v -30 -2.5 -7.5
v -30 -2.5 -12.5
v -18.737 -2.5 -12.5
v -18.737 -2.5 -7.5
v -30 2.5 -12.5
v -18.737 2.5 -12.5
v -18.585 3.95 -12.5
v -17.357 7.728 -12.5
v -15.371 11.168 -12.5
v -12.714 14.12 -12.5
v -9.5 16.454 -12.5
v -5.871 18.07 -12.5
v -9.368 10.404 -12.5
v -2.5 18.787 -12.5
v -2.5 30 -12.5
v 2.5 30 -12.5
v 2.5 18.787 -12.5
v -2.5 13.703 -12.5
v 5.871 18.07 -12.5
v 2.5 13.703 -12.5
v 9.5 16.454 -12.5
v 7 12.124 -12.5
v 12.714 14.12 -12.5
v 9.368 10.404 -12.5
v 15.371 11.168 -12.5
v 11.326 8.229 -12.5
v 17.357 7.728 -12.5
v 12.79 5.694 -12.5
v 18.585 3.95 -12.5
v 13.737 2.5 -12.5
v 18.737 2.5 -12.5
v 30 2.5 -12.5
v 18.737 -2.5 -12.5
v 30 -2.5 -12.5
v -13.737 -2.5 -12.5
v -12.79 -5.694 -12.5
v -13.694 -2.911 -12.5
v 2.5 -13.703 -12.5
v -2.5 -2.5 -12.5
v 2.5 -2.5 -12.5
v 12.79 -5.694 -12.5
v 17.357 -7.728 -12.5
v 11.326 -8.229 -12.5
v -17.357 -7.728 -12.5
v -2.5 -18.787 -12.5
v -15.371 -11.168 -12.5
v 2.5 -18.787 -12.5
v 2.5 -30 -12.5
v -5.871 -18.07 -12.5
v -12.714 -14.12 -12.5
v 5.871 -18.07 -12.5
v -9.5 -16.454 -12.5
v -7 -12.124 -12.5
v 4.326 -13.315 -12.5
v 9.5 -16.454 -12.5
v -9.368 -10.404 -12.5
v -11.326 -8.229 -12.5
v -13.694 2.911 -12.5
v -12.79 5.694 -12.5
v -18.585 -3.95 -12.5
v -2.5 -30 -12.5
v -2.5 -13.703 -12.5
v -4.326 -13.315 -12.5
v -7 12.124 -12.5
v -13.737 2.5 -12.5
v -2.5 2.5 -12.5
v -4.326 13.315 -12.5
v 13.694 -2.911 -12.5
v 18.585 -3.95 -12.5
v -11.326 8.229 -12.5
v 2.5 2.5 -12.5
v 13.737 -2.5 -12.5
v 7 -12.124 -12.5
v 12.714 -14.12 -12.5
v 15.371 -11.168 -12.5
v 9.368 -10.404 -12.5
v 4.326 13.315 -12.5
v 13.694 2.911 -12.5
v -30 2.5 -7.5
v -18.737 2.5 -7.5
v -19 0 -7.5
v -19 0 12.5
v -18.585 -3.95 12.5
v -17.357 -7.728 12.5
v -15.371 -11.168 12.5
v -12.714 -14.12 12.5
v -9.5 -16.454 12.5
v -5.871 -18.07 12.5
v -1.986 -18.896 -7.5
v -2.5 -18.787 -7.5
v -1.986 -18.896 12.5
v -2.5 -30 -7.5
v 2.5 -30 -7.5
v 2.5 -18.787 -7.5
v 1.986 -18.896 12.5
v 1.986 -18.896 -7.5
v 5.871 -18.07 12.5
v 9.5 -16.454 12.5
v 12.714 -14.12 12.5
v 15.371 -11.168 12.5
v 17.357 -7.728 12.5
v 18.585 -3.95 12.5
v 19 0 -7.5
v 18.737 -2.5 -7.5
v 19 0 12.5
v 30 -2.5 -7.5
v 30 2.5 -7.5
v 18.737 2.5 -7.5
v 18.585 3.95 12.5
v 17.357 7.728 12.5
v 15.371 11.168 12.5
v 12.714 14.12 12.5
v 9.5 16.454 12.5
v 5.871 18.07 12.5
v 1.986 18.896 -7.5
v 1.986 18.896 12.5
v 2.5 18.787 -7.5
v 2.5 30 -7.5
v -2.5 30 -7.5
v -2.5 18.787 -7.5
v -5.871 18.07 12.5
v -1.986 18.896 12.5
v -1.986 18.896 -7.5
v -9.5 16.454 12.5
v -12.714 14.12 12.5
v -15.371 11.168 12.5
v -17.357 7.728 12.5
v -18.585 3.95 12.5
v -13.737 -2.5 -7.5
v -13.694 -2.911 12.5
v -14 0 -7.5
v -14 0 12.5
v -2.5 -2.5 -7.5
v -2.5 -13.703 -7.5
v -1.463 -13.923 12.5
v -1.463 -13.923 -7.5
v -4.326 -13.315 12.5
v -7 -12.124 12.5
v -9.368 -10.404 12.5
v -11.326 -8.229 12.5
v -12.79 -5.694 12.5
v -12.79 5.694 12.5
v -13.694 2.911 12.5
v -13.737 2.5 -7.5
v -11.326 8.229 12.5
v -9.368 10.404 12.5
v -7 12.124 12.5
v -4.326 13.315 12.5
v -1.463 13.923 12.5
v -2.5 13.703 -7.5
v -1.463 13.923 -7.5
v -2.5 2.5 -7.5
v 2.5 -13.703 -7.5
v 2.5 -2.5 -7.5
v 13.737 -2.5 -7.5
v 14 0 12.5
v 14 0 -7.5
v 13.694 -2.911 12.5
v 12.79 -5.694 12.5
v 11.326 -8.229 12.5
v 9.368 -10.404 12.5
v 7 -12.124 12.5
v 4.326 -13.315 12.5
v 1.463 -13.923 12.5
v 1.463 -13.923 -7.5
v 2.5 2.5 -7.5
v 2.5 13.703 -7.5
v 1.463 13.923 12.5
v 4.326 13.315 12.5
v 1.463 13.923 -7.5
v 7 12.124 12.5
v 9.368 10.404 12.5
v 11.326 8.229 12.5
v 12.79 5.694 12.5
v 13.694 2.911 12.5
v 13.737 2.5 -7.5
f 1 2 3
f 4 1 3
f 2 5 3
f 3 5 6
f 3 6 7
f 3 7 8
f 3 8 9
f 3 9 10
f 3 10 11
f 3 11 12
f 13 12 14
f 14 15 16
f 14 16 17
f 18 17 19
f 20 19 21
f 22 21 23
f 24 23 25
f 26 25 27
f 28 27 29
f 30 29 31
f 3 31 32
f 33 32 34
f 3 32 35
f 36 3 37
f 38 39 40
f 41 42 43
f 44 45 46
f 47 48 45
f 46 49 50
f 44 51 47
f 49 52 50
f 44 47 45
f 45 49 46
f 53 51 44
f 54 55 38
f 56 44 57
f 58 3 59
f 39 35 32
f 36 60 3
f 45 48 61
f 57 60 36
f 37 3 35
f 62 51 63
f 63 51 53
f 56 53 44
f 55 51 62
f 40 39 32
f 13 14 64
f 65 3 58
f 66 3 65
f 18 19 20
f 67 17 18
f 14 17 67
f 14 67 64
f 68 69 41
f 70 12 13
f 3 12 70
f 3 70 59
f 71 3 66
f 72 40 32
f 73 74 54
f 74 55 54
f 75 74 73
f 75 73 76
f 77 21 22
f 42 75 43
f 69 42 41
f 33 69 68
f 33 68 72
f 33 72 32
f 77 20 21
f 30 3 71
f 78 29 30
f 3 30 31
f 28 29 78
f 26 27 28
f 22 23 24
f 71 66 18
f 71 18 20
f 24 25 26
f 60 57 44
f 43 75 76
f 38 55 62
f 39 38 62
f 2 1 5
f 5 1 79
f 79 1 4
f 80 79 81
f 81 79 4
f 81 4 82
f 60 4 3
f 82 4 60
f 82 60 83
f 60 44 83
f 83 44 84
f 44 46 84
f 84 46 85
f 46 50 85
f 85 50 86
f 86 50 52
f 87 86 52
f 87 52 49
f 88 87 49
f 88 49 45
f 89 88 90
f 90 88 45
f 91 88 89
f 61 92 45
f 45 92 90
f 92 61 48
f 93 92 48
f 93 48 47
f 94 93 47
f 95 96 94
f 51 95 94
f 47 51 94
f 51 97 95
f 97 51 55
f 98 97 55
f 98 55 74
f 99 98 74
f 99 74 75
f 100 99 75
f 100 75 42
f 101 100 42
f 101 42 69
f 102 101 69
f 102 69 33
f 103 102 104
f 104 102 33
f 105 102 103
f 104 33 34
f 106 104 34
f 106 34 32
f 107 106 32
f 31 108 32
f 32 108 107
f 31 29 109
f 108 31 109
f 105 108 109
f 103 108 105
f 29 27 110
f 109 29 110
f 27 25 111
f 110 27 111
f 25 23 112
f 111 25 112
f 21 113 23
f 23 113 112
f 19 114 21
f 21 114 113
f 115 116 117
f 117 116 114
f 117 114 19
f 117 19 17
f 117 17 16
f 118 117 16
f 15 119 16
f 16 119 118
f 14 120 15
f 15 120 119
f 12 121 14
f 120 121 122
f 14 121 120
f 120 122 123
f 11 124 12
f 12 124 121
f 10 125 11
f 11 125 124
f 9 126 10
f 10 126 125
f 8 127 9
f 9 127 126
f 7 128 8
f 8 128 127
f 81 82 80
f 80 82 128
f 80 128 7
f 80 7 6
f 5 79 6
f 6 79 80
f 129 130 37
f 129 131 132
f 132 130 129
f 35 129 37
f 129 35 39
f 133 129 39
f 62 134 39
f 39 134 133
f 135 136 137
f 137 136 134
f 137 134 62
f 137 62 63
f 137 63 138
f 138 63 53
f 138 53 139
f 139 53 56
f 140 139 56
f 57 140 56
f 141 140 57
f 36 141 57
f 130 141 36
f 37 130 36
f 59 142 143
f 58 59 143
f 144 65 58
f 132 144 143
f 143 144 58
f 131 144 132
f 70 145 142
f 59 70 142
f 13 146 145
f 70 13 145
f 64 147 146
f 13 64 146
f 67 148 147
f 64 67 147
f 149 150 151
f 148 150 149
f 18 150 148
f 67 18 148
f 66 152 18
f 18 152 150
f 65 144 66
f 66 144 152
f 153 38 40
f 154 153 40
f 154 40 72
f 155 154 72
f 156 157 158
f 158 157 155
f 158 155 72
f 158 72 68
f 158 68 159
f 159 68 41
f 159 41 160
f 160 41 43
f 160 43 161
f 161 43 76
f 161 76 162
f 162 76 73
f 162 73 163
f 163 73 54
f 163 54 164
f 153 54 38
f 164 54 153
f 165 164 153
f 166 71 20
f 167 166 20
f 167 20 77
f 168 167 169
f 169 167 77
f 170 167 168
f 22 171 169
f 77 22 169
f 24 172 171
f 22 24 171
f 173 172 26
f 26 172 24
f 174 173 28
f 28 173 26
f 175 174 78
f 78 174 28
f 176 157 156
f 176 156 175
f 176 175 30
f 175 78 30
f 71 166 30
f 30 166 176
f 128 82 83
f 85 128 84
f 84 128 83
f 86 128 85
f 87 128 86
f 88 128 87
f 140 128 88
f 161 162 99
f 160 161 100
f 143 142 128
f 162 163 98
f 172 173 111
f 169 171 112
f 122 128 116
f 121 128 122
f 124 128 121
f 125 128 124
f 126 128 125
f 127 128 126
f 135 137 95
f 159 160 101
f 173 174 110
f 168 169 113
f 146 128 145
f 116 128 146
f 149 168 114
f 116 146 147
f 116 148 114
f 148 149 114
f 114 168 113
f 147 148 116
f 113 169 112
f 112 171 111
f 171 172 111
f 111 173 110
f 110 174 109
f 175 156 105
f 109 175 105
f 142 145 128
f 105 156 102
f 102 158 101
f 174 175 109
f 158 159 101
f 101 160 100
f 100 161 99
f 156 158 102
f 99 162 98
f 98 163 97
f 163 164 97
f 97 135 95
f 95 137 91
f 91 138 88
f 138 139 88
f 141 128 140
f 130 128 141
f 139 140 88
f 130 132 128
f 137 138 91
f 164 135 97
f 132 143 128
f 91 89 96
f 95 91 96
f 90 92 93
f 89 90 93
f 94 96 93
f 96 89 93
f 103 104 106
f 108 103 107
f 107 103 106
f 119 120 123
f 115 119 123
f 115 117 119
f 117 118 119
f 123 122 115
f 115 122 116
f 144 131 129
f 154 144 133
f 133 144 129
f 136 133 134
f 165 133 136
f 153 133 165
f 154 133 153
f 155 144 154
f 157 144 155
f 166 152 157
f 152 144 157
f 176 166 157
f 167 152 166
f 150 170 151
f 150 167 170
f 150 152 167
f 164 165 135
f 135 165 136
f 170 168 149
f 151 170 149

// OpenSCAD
module example001()
{
	function r_from_dia(d) = d / 2;

	module rotcy(rot, r, h) {
		rotate(90, rot)
			cylinder(r = r, h = h, center = true);
	}

	difference() {
		rotcy([0, 0, 0], cy_r+5, cy_h);
		rotcy([0, 0, 0], cy_r, cy_h+1);
	}

	size = 25;
	hole = 28;
	sizeG = 5;
	union(){
		translate([0, 0, -size/2+sizeG/2])
		cube([sizeG, hole*2-1+5, sizeG], center = true);
		rotate(90,[0,0,1])
		translate([0, 0, -size/2+sizeG/2])
		cube([sizeG, hole*2-1+5, sizeG], center = true);
	}
	cy_r = r_from_dia(hole);
	cy_h = size;
}

example001();
